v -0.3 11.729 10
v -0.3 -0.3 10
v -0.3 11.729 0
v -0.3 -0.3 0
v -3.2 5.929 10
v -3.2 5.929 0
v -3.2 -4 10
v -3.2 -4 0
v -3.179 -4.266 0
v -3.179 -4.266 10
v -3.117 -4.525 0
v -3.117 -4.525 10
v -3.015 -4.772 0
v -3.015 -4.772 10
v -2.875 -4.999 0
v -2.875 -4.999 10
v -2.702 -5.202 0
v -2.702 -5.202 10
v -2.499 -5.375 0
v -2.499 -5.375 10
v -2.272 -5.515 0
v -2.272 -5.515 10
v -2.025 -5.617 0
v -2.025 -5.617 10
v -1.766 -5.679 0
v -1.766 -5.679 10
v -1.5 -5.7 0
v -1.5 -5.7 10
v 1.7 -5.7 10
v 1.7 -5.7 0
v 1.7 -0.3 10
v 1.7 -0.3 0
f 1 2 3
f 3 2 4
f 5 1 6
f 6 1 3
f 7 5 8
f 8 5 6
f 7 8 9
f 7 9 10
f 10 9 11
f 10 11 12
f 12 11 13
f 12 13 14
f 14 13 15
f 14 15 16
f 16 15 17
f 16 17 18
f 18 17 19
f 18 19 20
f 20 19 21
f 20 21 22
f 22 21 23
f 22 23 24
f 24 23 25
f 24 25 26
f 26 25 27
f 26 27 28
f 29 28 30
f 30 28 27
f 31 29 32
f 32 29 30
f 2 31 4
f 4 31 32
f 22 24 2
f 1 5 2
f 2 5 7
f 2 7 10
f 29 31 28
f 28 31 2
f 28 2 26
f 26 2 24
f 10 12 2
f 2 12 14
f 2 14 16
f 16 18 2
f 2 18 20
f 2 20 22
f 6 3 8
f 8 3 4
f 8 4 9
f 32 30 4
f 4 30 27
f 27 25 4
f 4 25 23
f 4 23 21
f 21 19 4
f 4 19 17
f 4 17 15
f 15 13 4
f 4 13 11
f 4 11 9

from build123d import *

# Parameters (mm, degrees)
BOSS_EXTRUDE1_DEPTH = 10


with BuildPart() as part:
    # Sketch1 → Boss-Extrude1 (new body)
    with BuildSketch(Plane.XY):
        with BuildLine():
            Line((-0.3, 11.729179607), (-3.2, 5.929179607))
            Line((-3.2, 5.929179607), (-3.2, -4))
            ThreePointArc((-3.2, -4), (-2.702081528, -5.202081528), (-1.5, -5.7))
            Line((-1.5, -5.7), (0, -5.7))
            Line((0, -5.7), (1.7, -5.7))
            Line((1.7, -5.7), (1.7, -0.3))
            Line((1.7, -0.3), (-0.3, -0.3))
            Line((-0.3, -0.3), (-0.3, 11.729179607))
        make_face()
    extrude(amount=BOSS_EXTRUDE1_DEPTH)


solid = part.part
